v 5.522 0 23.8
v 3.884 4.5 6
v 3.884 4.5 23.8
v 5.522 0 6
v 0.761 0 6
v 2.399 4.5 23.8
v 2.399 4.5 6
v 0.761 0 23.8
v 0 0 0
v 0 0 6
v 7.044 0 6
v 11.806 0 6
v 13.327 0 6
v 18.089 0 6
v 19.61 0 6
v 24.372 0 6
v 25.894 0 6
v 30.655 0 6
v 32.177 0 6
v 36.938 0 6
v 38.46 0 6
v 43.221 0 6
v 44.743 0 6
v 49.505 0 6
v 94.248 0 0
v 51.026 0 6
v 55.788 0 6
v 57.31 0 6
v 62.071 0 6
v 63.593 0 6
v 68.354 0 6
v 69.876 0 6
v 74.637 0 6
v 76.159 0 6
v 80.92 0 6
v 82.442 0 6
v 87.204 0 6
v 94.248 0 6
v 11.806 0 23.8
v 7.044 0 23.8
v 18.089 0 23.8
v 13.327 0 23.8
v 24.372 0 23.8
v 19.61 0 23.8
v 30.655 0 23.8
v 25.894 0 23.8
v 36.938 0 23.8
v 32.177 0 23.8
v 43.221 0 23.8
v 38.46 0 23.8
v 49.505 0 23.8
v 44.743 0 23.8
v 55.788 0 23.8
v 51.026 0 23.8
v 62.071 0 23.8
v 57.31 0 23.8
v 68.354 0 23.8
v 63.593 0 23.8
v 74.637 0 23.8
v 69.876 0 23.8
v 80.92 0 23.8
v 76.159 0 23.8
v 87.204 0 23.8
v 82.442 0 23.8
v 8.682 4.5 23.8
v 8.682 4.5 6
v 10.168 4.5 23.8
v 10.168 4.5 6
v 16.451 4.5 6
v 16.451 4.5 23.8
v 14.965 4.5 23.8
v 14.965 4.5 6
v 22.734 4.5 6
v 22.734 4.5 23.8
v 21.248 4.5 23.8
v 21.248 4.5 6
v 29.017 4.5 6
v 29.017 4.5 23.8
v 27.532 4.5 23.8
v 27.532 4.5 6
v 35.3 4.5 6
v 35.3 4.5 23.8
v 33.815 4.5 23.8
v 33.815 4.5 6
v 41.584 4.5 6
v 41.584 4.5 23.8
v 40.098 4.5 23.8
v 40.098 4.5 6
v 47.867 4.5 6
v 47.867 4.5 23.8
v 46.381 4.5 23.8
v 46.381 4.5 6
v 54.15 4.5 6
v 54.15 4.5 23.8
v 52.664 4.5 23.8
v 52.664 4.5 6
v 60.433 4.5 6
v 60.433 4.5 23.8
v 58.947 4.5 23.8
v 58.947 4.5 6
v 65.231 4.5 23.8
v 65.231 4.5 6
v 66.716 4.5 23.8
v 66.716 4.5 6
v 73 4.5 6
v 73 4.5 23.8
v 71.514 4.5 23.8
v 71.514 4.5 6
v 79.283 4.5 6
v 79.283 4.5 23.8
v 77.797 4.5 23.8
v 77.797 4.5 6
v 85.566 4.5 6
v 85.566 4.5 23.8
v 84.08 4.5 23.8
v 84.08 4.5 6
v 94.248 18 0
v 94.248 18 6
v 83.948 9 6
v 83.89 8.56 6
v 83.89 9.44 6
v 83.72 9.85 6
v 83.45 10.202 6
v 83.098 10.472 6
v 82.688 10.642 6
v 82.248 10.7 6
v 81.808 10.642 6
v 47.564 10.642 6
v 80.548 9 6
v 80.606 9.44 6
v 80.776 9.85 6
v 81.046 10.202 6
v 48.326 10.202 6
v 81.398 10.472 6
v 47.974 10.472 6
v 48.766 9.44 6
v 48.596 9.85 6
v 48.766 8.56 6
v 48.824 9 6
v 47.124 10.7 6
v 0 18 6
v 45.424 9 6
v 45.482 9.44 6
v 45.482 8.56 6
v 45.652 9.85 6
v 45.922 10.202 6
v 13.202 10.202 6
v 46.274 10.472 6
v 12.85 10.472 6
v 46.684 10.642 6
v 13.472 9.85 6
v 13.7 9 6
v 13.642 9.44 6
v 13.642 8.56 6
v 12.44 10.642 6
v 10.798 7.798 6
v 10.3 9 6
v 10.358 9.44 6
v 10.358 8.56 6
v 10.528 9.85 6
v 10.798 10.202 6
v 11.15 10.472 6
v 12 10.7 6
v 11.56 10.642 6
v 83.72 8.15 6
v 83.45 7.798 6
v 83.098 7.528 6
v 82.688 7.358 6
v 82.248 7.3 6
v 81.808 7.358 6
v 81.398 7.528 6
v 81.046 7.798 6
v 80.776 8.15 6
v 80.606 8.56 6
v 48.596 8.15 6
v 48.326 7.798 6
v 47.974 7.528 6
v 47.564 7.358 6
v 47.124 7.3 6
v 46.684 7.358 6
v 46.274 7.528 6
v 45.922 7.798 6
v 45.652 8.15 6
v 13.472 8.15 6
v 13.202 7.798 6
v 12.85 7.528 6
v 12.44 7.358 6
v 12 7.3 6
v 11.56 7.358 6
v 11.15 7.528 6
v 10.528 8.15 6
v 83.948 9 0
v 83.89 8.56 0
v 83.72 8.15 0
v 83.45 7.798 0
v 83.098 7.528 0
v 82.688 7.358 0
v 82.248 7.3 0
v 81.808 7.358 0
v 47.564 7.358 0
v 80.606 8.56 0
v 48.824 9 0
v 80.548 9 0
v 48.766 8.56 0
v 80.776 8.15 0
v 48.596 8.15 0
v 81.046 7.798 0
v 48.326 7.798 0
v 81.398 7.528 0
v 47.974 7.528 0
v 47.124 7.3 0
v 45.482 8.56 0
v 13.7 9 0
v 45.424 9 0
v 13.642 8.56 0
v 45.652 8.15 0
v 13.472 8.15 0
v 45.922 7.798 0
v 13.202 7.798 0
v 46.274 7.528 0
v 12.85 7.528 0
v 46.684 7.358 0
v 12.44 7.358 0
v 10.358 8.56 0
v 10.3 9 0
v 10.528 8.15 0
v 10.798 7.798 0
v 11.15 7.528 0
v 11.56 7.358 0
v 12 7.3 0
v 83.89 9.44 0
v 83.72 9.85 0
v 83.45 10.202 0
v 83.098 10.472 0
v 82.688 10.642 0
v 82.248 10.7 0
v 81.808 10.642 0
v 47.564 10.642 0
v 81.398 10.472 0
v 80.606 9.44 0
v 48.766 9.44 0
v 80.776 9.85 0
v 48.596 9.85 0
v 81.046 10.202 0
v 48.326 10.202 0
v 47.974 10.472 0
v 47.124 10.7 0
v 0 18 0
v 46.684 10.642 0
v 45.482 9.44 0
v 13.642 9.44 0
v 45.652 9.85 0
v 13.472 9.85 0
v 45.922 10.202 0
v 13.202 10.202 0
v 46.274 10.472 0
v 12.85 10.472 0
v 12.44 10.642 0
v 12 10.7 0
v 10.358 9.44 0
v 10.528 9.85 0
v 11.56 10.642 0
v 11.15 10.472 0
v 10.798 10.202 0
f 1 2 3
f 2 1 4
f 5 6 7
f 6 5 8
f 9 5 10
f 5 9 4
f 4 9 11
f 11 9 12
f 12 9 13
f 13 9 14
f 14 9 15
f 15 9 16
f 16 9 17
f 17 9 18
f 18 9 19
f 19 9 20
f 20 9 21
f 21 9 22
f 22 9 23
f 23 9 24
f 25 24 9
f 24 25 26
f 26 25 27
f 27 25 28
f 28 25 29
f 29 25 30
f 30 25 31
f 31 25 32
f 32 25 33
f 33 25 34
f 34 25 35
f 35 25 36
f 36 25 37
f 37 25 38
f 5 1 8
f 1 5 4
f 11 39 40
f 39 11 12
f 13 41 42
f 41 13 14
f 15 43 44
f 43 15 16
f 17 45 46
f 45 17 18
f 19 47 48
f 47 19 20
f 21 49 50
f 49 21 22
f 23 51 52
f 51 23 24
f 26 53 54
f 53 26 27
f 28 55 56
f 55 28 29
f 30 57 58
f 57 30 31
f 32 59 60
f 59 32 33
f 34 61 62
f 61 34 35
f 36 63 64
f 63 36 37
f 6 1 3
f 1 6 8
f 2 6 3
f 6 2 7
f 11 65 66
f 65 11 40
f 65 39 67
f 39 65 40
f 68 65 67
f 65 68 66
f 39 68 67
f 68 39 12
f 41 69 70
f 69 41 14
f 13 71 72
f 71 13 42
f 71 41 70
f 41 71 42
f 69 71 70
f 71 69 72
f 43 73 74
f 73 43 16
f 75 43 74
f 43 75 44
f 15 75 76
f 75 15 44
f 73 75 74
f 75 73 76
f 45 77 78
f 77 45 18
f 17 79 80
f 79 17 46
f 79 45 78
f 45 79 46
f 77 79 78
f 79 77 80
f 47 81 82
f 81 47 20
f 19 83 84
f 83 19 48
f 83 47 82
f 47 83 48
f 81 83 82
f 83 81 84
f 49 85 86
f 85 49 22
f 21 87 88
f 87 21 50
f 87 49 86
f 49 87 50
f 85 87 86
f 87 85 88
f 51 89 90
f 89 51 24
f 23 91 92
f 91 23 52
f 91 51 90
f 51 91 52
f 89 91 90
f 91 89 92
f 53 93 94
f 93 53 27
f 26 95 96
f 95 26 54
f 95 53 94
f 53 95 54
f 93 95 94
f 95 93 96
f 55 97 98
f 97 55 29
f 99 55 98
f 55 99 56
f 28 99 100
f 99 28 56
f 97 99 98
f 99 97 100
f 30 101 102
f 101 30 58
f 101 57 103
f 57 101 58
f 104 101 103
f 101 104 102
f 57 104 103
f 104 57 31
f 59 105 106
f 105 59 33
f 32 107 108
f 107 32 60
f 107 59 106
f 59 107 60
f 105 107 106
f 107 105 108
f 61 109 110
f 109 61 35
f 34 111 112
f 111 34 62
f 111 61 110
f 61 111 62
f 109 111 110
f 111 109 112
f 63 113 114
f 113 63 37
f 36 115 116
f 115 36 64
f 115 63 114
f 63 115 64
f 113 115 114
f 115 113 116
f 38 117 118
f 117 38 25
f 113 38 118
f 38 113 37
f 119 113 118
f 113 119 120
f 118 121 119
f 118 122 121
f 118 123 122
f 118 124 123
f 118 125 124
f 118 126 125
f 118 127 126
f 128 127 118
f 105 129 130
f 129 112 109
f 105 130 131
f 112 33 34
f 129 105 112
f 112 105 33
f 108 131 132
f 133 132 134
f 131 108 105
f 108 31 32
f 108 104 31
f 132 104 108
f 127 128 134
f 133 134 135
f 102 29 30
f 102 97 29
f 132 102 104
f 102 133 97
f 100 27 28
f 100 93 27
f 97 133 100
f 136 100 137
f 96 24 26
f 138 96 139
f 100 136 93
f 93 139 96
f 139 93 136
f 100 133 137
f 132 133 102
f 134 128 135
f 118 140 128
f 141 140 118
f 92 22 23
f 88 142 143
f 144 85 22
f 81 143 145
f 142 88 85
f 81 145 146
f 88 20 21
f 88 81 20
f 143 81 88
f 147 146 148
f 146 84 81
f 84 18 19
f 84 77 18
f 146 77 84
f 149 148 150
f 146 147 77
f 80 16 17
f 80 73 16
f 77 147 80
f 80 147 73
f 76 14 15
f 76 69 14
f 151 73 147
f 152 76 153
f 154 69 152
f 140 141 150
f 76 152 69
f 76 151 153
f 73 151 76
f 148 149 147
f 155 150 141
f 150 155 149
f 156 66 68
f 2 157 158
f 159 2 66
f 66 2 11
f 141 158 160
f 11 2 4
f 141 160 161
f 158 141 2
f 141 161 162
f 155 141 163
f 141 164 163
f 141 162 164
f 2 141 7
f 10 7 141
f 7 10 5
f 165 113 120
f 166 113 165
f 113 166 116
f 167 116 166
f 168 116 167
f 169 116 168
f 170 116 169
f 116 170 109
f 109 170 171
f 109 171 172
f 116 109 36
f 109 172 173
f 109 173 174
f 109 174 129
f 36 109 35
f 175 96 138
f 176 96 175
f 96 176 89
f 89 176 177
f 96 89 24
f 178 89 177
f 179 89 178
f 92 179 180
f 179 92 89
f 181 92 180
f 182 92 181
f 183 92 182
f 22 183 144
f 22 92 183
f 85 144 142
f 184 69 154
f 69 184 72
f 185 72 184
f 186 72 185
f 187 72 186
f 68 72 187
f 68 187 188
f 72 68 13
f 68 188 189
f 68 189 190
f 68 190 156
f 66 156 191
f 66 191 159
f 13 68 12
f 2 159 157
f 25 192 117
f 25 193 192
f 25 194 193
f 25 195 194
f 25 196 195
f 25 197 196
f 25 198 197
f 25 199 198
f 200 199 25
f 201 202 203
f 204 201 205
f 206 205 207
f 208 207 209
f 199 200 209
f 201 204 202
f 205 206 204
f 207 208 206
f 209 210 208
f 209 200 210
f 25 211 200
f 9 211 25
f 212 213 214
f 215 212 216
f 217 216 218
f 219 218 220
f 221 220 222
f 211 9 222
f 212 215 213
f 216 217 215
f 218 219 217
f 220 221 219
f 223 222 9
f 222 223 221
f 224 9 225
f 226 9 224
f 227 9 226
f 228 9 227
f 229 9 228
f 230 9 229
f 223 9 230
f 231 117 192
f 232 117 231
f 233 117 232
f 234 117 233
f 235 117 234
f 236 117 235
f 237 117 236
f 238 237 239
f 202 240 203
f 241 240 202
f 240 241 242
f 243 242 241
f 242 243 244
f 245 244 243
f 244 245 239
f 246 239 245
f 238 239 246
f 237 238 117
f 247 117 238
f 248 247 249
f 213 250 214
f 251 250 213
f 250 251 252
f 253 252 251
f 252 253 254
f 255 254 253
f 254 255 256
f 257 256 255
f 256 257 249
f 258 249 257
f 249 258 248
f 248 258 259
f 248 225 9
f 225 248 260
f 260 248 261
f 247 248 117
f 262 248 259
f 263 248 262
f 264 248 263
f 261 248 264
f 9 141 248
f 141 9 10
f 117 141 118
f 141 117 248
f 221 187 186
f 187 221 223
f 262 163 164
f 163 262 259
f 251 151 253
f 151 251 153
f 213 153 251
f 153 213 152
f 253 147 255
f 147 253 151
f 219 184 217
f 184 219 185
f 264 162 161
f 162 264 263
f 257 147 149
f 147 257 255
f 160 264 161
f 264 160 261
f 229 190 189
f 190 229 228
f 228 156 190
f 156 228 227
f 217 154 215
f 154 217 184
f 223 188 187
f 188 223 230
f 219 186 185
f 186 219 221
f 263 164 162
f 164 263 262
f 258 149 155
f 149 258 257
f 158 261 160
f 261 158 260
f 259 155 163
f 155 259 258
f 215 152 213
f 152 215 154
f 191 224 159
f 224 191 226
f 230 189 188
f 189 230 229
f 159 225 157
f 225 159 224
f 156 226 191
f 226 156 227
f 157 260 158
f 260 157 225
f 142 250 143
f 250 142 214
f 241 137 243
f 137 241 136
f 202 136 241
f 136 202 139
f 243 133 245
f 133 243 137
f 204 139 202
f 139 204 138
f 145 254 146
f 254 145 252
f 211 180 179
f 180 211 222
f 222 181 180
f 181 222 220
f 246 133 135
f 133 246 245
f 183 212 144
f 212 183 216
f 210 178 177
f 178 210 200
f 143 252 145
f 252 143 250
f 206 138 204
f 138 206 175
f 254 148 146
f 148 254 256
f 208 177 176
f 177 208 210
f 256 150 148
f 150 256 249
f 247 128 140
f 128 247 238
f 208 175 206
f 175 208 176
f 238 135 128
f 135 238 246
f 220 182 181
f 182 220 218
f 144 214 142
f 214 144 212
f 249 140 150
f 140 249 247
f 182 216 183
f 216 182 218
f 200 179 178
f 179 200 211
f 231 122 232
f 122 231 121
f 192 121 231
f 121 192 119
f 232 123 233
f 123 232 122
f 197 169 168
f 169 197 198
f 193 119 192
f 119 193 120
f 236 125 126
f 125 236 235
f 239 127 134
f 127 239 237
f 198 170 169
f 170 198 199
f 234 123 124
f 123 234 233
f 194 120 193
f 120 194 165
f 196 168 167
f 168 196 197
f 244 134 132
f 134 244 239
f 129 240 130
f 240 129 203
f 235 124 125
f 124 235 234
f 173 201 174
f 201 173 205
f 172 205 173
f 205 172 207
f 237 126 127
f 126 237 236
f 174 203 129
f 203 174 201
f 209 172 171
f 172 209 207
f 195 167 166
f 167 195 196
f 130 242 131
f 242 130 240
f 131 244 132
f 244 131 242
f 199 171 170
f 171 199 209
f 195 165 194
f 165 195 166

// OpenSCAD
// file: 00_parameters.scad
// TenderCells DoorCell V1 shared parameters
// Units: millimeters

overall_w = 438;
overall_h = 368;
frame_depth = 56;

clear_w = 242;
clear_h = 312;

rail_thick = 32;
jamb_w = 48;
motor_jamb_w = 78;

// Printability targets
target_bed_xy = 220;
comfortable_part_max = 180;

// Modular frame split dimensions
top_seg_len = overall_w / 3;
bottom_seg_len = overall_w / 3;
left_jamb_seg_h = overall_h / 2;
right_lower_h = 118;
right_motor_h = 156;
right_upper_h = overall_h - right_lower_h - right_motor_h;

// Low-cost electronics envelope used by DoorCell V1.4.
// These dimensions are based on common generic modules, not a custom PCB.
esp32_board = [58, 31, 8];
drv8871_board = [31, 26, 7];
current_sensor_board = [26, 22, 7];
lm2596_board = [44, 22, 14];
inline_fuse_body = [45, 15, 14];
cn3065_board = [44, 24, 8];
electronics_clearance = 1.5;
controller_wall = 3;
controller_box_w = 170;
controller_box_h = 115;
controller_box_d = 46;
controller_lid_insert_offset = 11;
controller_m12_gland_d = 12.8;
controller_m10_gland_d = 10.6;
controller_m8_gland_d = 8.4;
controller_button_d = 16.2;

// Brass heat-set/push-in insert features.
insert_post_d = 8.0;
insert_post_h = 8.0;
insert_pilot_d = 4.6;
insert_pilot_depth = 6.5;
hold_down_screw_clearance = 3.4;

// Motor envelope for common 25GA/JGA25-370 gearmotors with optional encoder.
motor_body_d = 25.0;
motor_body_clearance_d = 27.2;
motor_body_len = 65;
motor_encoder_clearance = 16;
motor_mount_plate = [72, 92, 12];
motor_mount_cradle = [54, 74, 28];

// Optional solar add-on.
solar_panel_w = 145;
solar_panel_h = 145;
solar_panel_t = 4.0;
solar_panel_frame_border = 10;
solar_panel_frame_w = solar_panel_w + 2*solar_panel_frame_border;
solar_panel_frame_h = solar_panel_h + 2*solar_panel_frame_border;
solar_panel_back_depth = 14;
solar_panel_lip_overlap = 3;
solar_ball_d = 22;
solar_ball_socket_clearance = 0.45;
solar_mount_m5 = 5.4;

// Tongue-and-groove frame joints
// Fit target: common FDM printers with PETG/ASA.
// Clearance is per side, so sockets add 2x this value.
tongue_len = 18;
tongue_w = 22;
tongue_z = 10;
tongue_clearance_side = 0.25;
tongue_socket_depth_extra = 0.60;

door_w = 270;
door_h = 326;
door_t = 8;

track_gap = 11;
track_depth = 12;

// Rack-and-pinion drive
// Metric module gear math:
// circular_pitch = PI * module
// pitch_diameter = module * tooth_count
// outside_diameter = module * (tooth_count + 2)
// root_diameter = module * (tooth_count - 2.5)
gear_module = 2.0;
pressure_angle = 20;
gear_backlash = 0.20; // mm removed from rack tooth thickness at pitch line

pinion_teeth = 16;
pinion_pitch_d = gear_module * pinion_teeth;
pinion_pitch_radius = pinion_pitch_d / 2;
pinion_outer_d = gear_module * (pinion_teeth + 2);
pinion_outer_radius = pinion_outer_d / 2;
pinion_root_d = gear_module * (pinion_teeth - 2.5);
pinion_root_radius = pinion_root_d / 2;
pinion_thick = 12;
shaft_d = 6.2;

rack_tooth_count = 15;
rack_circular_pitch = 3.141592653589793 * gear_module;
rack_len = rack_circular_pitch * rack_tooth_count;
rack_w = 18;
rack_t = 6;
rack_addendum = gear_module;
rack_dedendum = 1.25 * gear_module;
rack_tooth_h = rack_addendum + rack_dedendum;
rack_pitch_line_z = rack_dedendum;
rack_tooth_pitch_thickness = rack_circular_pitch / 2 - gear_backlash;
rack_tooth_top_w = rack_tooth_pitch_thickness - 2 * rack_addendum * tan(pressure_angle);
rack_tooth_root_w = rack_tooth_pitch_thickness + 2 * rack_dedendum * tan(pressure_angle);

screw_m3 = 3.4;
screw_m4 = 4.5;
insert_m3 = 4.6;

eps = 0.01;

module rounded_box(size=[10,10,10], r=2) {
  hull() {
    translate([r,r,0]) cylinder(h=size[2], r=r, $fn=24);
    translate([size[0]-r,r,0]) cylinder(h=size[2], r=r, $fn=24);
    translate([r,size[1]-r,0]) cylinder(h=size[2], r=r, $fn=24);
    translate([size[0]-r,size[1]-r,0]) cylinder(h=size[2], r=r, $fn=24);
  }
}

module m3_clearance_hole(h=20) {
  cylinder(h=h, d=screw_m3, $fn=24);
}

module m4_clearance_hole(h=20) {
  cylinder(h=h, d=screw_m4, $fn=24);
}

module heat_insert_hole(h=6) {
  cylinder(h=h, d=insert_m3, $fn=24);
}

module heat_insert_post(h=insert_post_h, d=insert_post_d) {
  difference() {
    cylinder(h=h, d=d, $fn=32);
    translate([0,0,h-insert_pilot_depth+eps])
      cylinder(h=insert_pilot_depth+eps, d=insert_pilot_d, $fn=24);
  }
}

module m3_hold_down_slot(length=10, h=4) {
  hull() {
    translate([-length/2,0,0]) cylinder(h=h, d=hold_down_screw_clearance, $fn=20);
    translate([ length/2,0,0]) cylinder(h=h, d=hold_down_screw_clearance, $fn=20);
  }
}

module rail_channel(length=100) {
  cube([length, track_gap, track_depth]);
}

module frame_tongue_x() {
  rounded_box([tongue_len, tongue_w, tongue_z], r=1.5);
}

module frame_socket_x() {
  cube([
    tongue_len + tongue_socket_depth_extra,
    tongue_w + 2*tongue_clearance_side,
    tongue_z + 2*tongue_clearance_side
  ]);
}

module frame_tongue_y() {
  rounded_box([tongue_w, tongue_len, tongue_z], r=1.5);
}

module frame_socket_y() {
  cube([
    tongue_w + 2*tongue_clearance_side,
    tongue_len + tongue_socket_depth_extra,
    tongue_z + 2*tongue_clearance_side
  ]);
}

module rack_teeth(len=rack_len) {
  teeth = floor(len / rack_circular_pitch);
  for (i=[0:teeth-1]) {
    center = i*rack_circular_pitch + rack_circular_pitch/2;
    translate([0, 0, rack_t-0.20])
      linear_extrude(height=rack_w)
        polygon(points=[
          [center - rack_tooth_root_w/2, 0],
          [center + rack_tooth_root_w/2, 0],
          [center + rack_tooth_top_w/2, rack_tooth_h],
          [center - rack_tooth_top_w/2, rack_tooth_h]
        ]);
  }
}

function polar_point(r, a) = [r * cos(a), r * sin(a)];
// main file
include <00_parameters.scad>

difference() {
  union() {
    cube([rack_len, rack_w, rack_t]);
    rack_teeth(len=rack_len);
  }

  for (x=[12, rack_len/2, rack_len-12]) {
    translate([x, rack_w/2, -eps]) m3_clearance_hole(h=rack_t+rack_tooth_h+2);
  }
}
